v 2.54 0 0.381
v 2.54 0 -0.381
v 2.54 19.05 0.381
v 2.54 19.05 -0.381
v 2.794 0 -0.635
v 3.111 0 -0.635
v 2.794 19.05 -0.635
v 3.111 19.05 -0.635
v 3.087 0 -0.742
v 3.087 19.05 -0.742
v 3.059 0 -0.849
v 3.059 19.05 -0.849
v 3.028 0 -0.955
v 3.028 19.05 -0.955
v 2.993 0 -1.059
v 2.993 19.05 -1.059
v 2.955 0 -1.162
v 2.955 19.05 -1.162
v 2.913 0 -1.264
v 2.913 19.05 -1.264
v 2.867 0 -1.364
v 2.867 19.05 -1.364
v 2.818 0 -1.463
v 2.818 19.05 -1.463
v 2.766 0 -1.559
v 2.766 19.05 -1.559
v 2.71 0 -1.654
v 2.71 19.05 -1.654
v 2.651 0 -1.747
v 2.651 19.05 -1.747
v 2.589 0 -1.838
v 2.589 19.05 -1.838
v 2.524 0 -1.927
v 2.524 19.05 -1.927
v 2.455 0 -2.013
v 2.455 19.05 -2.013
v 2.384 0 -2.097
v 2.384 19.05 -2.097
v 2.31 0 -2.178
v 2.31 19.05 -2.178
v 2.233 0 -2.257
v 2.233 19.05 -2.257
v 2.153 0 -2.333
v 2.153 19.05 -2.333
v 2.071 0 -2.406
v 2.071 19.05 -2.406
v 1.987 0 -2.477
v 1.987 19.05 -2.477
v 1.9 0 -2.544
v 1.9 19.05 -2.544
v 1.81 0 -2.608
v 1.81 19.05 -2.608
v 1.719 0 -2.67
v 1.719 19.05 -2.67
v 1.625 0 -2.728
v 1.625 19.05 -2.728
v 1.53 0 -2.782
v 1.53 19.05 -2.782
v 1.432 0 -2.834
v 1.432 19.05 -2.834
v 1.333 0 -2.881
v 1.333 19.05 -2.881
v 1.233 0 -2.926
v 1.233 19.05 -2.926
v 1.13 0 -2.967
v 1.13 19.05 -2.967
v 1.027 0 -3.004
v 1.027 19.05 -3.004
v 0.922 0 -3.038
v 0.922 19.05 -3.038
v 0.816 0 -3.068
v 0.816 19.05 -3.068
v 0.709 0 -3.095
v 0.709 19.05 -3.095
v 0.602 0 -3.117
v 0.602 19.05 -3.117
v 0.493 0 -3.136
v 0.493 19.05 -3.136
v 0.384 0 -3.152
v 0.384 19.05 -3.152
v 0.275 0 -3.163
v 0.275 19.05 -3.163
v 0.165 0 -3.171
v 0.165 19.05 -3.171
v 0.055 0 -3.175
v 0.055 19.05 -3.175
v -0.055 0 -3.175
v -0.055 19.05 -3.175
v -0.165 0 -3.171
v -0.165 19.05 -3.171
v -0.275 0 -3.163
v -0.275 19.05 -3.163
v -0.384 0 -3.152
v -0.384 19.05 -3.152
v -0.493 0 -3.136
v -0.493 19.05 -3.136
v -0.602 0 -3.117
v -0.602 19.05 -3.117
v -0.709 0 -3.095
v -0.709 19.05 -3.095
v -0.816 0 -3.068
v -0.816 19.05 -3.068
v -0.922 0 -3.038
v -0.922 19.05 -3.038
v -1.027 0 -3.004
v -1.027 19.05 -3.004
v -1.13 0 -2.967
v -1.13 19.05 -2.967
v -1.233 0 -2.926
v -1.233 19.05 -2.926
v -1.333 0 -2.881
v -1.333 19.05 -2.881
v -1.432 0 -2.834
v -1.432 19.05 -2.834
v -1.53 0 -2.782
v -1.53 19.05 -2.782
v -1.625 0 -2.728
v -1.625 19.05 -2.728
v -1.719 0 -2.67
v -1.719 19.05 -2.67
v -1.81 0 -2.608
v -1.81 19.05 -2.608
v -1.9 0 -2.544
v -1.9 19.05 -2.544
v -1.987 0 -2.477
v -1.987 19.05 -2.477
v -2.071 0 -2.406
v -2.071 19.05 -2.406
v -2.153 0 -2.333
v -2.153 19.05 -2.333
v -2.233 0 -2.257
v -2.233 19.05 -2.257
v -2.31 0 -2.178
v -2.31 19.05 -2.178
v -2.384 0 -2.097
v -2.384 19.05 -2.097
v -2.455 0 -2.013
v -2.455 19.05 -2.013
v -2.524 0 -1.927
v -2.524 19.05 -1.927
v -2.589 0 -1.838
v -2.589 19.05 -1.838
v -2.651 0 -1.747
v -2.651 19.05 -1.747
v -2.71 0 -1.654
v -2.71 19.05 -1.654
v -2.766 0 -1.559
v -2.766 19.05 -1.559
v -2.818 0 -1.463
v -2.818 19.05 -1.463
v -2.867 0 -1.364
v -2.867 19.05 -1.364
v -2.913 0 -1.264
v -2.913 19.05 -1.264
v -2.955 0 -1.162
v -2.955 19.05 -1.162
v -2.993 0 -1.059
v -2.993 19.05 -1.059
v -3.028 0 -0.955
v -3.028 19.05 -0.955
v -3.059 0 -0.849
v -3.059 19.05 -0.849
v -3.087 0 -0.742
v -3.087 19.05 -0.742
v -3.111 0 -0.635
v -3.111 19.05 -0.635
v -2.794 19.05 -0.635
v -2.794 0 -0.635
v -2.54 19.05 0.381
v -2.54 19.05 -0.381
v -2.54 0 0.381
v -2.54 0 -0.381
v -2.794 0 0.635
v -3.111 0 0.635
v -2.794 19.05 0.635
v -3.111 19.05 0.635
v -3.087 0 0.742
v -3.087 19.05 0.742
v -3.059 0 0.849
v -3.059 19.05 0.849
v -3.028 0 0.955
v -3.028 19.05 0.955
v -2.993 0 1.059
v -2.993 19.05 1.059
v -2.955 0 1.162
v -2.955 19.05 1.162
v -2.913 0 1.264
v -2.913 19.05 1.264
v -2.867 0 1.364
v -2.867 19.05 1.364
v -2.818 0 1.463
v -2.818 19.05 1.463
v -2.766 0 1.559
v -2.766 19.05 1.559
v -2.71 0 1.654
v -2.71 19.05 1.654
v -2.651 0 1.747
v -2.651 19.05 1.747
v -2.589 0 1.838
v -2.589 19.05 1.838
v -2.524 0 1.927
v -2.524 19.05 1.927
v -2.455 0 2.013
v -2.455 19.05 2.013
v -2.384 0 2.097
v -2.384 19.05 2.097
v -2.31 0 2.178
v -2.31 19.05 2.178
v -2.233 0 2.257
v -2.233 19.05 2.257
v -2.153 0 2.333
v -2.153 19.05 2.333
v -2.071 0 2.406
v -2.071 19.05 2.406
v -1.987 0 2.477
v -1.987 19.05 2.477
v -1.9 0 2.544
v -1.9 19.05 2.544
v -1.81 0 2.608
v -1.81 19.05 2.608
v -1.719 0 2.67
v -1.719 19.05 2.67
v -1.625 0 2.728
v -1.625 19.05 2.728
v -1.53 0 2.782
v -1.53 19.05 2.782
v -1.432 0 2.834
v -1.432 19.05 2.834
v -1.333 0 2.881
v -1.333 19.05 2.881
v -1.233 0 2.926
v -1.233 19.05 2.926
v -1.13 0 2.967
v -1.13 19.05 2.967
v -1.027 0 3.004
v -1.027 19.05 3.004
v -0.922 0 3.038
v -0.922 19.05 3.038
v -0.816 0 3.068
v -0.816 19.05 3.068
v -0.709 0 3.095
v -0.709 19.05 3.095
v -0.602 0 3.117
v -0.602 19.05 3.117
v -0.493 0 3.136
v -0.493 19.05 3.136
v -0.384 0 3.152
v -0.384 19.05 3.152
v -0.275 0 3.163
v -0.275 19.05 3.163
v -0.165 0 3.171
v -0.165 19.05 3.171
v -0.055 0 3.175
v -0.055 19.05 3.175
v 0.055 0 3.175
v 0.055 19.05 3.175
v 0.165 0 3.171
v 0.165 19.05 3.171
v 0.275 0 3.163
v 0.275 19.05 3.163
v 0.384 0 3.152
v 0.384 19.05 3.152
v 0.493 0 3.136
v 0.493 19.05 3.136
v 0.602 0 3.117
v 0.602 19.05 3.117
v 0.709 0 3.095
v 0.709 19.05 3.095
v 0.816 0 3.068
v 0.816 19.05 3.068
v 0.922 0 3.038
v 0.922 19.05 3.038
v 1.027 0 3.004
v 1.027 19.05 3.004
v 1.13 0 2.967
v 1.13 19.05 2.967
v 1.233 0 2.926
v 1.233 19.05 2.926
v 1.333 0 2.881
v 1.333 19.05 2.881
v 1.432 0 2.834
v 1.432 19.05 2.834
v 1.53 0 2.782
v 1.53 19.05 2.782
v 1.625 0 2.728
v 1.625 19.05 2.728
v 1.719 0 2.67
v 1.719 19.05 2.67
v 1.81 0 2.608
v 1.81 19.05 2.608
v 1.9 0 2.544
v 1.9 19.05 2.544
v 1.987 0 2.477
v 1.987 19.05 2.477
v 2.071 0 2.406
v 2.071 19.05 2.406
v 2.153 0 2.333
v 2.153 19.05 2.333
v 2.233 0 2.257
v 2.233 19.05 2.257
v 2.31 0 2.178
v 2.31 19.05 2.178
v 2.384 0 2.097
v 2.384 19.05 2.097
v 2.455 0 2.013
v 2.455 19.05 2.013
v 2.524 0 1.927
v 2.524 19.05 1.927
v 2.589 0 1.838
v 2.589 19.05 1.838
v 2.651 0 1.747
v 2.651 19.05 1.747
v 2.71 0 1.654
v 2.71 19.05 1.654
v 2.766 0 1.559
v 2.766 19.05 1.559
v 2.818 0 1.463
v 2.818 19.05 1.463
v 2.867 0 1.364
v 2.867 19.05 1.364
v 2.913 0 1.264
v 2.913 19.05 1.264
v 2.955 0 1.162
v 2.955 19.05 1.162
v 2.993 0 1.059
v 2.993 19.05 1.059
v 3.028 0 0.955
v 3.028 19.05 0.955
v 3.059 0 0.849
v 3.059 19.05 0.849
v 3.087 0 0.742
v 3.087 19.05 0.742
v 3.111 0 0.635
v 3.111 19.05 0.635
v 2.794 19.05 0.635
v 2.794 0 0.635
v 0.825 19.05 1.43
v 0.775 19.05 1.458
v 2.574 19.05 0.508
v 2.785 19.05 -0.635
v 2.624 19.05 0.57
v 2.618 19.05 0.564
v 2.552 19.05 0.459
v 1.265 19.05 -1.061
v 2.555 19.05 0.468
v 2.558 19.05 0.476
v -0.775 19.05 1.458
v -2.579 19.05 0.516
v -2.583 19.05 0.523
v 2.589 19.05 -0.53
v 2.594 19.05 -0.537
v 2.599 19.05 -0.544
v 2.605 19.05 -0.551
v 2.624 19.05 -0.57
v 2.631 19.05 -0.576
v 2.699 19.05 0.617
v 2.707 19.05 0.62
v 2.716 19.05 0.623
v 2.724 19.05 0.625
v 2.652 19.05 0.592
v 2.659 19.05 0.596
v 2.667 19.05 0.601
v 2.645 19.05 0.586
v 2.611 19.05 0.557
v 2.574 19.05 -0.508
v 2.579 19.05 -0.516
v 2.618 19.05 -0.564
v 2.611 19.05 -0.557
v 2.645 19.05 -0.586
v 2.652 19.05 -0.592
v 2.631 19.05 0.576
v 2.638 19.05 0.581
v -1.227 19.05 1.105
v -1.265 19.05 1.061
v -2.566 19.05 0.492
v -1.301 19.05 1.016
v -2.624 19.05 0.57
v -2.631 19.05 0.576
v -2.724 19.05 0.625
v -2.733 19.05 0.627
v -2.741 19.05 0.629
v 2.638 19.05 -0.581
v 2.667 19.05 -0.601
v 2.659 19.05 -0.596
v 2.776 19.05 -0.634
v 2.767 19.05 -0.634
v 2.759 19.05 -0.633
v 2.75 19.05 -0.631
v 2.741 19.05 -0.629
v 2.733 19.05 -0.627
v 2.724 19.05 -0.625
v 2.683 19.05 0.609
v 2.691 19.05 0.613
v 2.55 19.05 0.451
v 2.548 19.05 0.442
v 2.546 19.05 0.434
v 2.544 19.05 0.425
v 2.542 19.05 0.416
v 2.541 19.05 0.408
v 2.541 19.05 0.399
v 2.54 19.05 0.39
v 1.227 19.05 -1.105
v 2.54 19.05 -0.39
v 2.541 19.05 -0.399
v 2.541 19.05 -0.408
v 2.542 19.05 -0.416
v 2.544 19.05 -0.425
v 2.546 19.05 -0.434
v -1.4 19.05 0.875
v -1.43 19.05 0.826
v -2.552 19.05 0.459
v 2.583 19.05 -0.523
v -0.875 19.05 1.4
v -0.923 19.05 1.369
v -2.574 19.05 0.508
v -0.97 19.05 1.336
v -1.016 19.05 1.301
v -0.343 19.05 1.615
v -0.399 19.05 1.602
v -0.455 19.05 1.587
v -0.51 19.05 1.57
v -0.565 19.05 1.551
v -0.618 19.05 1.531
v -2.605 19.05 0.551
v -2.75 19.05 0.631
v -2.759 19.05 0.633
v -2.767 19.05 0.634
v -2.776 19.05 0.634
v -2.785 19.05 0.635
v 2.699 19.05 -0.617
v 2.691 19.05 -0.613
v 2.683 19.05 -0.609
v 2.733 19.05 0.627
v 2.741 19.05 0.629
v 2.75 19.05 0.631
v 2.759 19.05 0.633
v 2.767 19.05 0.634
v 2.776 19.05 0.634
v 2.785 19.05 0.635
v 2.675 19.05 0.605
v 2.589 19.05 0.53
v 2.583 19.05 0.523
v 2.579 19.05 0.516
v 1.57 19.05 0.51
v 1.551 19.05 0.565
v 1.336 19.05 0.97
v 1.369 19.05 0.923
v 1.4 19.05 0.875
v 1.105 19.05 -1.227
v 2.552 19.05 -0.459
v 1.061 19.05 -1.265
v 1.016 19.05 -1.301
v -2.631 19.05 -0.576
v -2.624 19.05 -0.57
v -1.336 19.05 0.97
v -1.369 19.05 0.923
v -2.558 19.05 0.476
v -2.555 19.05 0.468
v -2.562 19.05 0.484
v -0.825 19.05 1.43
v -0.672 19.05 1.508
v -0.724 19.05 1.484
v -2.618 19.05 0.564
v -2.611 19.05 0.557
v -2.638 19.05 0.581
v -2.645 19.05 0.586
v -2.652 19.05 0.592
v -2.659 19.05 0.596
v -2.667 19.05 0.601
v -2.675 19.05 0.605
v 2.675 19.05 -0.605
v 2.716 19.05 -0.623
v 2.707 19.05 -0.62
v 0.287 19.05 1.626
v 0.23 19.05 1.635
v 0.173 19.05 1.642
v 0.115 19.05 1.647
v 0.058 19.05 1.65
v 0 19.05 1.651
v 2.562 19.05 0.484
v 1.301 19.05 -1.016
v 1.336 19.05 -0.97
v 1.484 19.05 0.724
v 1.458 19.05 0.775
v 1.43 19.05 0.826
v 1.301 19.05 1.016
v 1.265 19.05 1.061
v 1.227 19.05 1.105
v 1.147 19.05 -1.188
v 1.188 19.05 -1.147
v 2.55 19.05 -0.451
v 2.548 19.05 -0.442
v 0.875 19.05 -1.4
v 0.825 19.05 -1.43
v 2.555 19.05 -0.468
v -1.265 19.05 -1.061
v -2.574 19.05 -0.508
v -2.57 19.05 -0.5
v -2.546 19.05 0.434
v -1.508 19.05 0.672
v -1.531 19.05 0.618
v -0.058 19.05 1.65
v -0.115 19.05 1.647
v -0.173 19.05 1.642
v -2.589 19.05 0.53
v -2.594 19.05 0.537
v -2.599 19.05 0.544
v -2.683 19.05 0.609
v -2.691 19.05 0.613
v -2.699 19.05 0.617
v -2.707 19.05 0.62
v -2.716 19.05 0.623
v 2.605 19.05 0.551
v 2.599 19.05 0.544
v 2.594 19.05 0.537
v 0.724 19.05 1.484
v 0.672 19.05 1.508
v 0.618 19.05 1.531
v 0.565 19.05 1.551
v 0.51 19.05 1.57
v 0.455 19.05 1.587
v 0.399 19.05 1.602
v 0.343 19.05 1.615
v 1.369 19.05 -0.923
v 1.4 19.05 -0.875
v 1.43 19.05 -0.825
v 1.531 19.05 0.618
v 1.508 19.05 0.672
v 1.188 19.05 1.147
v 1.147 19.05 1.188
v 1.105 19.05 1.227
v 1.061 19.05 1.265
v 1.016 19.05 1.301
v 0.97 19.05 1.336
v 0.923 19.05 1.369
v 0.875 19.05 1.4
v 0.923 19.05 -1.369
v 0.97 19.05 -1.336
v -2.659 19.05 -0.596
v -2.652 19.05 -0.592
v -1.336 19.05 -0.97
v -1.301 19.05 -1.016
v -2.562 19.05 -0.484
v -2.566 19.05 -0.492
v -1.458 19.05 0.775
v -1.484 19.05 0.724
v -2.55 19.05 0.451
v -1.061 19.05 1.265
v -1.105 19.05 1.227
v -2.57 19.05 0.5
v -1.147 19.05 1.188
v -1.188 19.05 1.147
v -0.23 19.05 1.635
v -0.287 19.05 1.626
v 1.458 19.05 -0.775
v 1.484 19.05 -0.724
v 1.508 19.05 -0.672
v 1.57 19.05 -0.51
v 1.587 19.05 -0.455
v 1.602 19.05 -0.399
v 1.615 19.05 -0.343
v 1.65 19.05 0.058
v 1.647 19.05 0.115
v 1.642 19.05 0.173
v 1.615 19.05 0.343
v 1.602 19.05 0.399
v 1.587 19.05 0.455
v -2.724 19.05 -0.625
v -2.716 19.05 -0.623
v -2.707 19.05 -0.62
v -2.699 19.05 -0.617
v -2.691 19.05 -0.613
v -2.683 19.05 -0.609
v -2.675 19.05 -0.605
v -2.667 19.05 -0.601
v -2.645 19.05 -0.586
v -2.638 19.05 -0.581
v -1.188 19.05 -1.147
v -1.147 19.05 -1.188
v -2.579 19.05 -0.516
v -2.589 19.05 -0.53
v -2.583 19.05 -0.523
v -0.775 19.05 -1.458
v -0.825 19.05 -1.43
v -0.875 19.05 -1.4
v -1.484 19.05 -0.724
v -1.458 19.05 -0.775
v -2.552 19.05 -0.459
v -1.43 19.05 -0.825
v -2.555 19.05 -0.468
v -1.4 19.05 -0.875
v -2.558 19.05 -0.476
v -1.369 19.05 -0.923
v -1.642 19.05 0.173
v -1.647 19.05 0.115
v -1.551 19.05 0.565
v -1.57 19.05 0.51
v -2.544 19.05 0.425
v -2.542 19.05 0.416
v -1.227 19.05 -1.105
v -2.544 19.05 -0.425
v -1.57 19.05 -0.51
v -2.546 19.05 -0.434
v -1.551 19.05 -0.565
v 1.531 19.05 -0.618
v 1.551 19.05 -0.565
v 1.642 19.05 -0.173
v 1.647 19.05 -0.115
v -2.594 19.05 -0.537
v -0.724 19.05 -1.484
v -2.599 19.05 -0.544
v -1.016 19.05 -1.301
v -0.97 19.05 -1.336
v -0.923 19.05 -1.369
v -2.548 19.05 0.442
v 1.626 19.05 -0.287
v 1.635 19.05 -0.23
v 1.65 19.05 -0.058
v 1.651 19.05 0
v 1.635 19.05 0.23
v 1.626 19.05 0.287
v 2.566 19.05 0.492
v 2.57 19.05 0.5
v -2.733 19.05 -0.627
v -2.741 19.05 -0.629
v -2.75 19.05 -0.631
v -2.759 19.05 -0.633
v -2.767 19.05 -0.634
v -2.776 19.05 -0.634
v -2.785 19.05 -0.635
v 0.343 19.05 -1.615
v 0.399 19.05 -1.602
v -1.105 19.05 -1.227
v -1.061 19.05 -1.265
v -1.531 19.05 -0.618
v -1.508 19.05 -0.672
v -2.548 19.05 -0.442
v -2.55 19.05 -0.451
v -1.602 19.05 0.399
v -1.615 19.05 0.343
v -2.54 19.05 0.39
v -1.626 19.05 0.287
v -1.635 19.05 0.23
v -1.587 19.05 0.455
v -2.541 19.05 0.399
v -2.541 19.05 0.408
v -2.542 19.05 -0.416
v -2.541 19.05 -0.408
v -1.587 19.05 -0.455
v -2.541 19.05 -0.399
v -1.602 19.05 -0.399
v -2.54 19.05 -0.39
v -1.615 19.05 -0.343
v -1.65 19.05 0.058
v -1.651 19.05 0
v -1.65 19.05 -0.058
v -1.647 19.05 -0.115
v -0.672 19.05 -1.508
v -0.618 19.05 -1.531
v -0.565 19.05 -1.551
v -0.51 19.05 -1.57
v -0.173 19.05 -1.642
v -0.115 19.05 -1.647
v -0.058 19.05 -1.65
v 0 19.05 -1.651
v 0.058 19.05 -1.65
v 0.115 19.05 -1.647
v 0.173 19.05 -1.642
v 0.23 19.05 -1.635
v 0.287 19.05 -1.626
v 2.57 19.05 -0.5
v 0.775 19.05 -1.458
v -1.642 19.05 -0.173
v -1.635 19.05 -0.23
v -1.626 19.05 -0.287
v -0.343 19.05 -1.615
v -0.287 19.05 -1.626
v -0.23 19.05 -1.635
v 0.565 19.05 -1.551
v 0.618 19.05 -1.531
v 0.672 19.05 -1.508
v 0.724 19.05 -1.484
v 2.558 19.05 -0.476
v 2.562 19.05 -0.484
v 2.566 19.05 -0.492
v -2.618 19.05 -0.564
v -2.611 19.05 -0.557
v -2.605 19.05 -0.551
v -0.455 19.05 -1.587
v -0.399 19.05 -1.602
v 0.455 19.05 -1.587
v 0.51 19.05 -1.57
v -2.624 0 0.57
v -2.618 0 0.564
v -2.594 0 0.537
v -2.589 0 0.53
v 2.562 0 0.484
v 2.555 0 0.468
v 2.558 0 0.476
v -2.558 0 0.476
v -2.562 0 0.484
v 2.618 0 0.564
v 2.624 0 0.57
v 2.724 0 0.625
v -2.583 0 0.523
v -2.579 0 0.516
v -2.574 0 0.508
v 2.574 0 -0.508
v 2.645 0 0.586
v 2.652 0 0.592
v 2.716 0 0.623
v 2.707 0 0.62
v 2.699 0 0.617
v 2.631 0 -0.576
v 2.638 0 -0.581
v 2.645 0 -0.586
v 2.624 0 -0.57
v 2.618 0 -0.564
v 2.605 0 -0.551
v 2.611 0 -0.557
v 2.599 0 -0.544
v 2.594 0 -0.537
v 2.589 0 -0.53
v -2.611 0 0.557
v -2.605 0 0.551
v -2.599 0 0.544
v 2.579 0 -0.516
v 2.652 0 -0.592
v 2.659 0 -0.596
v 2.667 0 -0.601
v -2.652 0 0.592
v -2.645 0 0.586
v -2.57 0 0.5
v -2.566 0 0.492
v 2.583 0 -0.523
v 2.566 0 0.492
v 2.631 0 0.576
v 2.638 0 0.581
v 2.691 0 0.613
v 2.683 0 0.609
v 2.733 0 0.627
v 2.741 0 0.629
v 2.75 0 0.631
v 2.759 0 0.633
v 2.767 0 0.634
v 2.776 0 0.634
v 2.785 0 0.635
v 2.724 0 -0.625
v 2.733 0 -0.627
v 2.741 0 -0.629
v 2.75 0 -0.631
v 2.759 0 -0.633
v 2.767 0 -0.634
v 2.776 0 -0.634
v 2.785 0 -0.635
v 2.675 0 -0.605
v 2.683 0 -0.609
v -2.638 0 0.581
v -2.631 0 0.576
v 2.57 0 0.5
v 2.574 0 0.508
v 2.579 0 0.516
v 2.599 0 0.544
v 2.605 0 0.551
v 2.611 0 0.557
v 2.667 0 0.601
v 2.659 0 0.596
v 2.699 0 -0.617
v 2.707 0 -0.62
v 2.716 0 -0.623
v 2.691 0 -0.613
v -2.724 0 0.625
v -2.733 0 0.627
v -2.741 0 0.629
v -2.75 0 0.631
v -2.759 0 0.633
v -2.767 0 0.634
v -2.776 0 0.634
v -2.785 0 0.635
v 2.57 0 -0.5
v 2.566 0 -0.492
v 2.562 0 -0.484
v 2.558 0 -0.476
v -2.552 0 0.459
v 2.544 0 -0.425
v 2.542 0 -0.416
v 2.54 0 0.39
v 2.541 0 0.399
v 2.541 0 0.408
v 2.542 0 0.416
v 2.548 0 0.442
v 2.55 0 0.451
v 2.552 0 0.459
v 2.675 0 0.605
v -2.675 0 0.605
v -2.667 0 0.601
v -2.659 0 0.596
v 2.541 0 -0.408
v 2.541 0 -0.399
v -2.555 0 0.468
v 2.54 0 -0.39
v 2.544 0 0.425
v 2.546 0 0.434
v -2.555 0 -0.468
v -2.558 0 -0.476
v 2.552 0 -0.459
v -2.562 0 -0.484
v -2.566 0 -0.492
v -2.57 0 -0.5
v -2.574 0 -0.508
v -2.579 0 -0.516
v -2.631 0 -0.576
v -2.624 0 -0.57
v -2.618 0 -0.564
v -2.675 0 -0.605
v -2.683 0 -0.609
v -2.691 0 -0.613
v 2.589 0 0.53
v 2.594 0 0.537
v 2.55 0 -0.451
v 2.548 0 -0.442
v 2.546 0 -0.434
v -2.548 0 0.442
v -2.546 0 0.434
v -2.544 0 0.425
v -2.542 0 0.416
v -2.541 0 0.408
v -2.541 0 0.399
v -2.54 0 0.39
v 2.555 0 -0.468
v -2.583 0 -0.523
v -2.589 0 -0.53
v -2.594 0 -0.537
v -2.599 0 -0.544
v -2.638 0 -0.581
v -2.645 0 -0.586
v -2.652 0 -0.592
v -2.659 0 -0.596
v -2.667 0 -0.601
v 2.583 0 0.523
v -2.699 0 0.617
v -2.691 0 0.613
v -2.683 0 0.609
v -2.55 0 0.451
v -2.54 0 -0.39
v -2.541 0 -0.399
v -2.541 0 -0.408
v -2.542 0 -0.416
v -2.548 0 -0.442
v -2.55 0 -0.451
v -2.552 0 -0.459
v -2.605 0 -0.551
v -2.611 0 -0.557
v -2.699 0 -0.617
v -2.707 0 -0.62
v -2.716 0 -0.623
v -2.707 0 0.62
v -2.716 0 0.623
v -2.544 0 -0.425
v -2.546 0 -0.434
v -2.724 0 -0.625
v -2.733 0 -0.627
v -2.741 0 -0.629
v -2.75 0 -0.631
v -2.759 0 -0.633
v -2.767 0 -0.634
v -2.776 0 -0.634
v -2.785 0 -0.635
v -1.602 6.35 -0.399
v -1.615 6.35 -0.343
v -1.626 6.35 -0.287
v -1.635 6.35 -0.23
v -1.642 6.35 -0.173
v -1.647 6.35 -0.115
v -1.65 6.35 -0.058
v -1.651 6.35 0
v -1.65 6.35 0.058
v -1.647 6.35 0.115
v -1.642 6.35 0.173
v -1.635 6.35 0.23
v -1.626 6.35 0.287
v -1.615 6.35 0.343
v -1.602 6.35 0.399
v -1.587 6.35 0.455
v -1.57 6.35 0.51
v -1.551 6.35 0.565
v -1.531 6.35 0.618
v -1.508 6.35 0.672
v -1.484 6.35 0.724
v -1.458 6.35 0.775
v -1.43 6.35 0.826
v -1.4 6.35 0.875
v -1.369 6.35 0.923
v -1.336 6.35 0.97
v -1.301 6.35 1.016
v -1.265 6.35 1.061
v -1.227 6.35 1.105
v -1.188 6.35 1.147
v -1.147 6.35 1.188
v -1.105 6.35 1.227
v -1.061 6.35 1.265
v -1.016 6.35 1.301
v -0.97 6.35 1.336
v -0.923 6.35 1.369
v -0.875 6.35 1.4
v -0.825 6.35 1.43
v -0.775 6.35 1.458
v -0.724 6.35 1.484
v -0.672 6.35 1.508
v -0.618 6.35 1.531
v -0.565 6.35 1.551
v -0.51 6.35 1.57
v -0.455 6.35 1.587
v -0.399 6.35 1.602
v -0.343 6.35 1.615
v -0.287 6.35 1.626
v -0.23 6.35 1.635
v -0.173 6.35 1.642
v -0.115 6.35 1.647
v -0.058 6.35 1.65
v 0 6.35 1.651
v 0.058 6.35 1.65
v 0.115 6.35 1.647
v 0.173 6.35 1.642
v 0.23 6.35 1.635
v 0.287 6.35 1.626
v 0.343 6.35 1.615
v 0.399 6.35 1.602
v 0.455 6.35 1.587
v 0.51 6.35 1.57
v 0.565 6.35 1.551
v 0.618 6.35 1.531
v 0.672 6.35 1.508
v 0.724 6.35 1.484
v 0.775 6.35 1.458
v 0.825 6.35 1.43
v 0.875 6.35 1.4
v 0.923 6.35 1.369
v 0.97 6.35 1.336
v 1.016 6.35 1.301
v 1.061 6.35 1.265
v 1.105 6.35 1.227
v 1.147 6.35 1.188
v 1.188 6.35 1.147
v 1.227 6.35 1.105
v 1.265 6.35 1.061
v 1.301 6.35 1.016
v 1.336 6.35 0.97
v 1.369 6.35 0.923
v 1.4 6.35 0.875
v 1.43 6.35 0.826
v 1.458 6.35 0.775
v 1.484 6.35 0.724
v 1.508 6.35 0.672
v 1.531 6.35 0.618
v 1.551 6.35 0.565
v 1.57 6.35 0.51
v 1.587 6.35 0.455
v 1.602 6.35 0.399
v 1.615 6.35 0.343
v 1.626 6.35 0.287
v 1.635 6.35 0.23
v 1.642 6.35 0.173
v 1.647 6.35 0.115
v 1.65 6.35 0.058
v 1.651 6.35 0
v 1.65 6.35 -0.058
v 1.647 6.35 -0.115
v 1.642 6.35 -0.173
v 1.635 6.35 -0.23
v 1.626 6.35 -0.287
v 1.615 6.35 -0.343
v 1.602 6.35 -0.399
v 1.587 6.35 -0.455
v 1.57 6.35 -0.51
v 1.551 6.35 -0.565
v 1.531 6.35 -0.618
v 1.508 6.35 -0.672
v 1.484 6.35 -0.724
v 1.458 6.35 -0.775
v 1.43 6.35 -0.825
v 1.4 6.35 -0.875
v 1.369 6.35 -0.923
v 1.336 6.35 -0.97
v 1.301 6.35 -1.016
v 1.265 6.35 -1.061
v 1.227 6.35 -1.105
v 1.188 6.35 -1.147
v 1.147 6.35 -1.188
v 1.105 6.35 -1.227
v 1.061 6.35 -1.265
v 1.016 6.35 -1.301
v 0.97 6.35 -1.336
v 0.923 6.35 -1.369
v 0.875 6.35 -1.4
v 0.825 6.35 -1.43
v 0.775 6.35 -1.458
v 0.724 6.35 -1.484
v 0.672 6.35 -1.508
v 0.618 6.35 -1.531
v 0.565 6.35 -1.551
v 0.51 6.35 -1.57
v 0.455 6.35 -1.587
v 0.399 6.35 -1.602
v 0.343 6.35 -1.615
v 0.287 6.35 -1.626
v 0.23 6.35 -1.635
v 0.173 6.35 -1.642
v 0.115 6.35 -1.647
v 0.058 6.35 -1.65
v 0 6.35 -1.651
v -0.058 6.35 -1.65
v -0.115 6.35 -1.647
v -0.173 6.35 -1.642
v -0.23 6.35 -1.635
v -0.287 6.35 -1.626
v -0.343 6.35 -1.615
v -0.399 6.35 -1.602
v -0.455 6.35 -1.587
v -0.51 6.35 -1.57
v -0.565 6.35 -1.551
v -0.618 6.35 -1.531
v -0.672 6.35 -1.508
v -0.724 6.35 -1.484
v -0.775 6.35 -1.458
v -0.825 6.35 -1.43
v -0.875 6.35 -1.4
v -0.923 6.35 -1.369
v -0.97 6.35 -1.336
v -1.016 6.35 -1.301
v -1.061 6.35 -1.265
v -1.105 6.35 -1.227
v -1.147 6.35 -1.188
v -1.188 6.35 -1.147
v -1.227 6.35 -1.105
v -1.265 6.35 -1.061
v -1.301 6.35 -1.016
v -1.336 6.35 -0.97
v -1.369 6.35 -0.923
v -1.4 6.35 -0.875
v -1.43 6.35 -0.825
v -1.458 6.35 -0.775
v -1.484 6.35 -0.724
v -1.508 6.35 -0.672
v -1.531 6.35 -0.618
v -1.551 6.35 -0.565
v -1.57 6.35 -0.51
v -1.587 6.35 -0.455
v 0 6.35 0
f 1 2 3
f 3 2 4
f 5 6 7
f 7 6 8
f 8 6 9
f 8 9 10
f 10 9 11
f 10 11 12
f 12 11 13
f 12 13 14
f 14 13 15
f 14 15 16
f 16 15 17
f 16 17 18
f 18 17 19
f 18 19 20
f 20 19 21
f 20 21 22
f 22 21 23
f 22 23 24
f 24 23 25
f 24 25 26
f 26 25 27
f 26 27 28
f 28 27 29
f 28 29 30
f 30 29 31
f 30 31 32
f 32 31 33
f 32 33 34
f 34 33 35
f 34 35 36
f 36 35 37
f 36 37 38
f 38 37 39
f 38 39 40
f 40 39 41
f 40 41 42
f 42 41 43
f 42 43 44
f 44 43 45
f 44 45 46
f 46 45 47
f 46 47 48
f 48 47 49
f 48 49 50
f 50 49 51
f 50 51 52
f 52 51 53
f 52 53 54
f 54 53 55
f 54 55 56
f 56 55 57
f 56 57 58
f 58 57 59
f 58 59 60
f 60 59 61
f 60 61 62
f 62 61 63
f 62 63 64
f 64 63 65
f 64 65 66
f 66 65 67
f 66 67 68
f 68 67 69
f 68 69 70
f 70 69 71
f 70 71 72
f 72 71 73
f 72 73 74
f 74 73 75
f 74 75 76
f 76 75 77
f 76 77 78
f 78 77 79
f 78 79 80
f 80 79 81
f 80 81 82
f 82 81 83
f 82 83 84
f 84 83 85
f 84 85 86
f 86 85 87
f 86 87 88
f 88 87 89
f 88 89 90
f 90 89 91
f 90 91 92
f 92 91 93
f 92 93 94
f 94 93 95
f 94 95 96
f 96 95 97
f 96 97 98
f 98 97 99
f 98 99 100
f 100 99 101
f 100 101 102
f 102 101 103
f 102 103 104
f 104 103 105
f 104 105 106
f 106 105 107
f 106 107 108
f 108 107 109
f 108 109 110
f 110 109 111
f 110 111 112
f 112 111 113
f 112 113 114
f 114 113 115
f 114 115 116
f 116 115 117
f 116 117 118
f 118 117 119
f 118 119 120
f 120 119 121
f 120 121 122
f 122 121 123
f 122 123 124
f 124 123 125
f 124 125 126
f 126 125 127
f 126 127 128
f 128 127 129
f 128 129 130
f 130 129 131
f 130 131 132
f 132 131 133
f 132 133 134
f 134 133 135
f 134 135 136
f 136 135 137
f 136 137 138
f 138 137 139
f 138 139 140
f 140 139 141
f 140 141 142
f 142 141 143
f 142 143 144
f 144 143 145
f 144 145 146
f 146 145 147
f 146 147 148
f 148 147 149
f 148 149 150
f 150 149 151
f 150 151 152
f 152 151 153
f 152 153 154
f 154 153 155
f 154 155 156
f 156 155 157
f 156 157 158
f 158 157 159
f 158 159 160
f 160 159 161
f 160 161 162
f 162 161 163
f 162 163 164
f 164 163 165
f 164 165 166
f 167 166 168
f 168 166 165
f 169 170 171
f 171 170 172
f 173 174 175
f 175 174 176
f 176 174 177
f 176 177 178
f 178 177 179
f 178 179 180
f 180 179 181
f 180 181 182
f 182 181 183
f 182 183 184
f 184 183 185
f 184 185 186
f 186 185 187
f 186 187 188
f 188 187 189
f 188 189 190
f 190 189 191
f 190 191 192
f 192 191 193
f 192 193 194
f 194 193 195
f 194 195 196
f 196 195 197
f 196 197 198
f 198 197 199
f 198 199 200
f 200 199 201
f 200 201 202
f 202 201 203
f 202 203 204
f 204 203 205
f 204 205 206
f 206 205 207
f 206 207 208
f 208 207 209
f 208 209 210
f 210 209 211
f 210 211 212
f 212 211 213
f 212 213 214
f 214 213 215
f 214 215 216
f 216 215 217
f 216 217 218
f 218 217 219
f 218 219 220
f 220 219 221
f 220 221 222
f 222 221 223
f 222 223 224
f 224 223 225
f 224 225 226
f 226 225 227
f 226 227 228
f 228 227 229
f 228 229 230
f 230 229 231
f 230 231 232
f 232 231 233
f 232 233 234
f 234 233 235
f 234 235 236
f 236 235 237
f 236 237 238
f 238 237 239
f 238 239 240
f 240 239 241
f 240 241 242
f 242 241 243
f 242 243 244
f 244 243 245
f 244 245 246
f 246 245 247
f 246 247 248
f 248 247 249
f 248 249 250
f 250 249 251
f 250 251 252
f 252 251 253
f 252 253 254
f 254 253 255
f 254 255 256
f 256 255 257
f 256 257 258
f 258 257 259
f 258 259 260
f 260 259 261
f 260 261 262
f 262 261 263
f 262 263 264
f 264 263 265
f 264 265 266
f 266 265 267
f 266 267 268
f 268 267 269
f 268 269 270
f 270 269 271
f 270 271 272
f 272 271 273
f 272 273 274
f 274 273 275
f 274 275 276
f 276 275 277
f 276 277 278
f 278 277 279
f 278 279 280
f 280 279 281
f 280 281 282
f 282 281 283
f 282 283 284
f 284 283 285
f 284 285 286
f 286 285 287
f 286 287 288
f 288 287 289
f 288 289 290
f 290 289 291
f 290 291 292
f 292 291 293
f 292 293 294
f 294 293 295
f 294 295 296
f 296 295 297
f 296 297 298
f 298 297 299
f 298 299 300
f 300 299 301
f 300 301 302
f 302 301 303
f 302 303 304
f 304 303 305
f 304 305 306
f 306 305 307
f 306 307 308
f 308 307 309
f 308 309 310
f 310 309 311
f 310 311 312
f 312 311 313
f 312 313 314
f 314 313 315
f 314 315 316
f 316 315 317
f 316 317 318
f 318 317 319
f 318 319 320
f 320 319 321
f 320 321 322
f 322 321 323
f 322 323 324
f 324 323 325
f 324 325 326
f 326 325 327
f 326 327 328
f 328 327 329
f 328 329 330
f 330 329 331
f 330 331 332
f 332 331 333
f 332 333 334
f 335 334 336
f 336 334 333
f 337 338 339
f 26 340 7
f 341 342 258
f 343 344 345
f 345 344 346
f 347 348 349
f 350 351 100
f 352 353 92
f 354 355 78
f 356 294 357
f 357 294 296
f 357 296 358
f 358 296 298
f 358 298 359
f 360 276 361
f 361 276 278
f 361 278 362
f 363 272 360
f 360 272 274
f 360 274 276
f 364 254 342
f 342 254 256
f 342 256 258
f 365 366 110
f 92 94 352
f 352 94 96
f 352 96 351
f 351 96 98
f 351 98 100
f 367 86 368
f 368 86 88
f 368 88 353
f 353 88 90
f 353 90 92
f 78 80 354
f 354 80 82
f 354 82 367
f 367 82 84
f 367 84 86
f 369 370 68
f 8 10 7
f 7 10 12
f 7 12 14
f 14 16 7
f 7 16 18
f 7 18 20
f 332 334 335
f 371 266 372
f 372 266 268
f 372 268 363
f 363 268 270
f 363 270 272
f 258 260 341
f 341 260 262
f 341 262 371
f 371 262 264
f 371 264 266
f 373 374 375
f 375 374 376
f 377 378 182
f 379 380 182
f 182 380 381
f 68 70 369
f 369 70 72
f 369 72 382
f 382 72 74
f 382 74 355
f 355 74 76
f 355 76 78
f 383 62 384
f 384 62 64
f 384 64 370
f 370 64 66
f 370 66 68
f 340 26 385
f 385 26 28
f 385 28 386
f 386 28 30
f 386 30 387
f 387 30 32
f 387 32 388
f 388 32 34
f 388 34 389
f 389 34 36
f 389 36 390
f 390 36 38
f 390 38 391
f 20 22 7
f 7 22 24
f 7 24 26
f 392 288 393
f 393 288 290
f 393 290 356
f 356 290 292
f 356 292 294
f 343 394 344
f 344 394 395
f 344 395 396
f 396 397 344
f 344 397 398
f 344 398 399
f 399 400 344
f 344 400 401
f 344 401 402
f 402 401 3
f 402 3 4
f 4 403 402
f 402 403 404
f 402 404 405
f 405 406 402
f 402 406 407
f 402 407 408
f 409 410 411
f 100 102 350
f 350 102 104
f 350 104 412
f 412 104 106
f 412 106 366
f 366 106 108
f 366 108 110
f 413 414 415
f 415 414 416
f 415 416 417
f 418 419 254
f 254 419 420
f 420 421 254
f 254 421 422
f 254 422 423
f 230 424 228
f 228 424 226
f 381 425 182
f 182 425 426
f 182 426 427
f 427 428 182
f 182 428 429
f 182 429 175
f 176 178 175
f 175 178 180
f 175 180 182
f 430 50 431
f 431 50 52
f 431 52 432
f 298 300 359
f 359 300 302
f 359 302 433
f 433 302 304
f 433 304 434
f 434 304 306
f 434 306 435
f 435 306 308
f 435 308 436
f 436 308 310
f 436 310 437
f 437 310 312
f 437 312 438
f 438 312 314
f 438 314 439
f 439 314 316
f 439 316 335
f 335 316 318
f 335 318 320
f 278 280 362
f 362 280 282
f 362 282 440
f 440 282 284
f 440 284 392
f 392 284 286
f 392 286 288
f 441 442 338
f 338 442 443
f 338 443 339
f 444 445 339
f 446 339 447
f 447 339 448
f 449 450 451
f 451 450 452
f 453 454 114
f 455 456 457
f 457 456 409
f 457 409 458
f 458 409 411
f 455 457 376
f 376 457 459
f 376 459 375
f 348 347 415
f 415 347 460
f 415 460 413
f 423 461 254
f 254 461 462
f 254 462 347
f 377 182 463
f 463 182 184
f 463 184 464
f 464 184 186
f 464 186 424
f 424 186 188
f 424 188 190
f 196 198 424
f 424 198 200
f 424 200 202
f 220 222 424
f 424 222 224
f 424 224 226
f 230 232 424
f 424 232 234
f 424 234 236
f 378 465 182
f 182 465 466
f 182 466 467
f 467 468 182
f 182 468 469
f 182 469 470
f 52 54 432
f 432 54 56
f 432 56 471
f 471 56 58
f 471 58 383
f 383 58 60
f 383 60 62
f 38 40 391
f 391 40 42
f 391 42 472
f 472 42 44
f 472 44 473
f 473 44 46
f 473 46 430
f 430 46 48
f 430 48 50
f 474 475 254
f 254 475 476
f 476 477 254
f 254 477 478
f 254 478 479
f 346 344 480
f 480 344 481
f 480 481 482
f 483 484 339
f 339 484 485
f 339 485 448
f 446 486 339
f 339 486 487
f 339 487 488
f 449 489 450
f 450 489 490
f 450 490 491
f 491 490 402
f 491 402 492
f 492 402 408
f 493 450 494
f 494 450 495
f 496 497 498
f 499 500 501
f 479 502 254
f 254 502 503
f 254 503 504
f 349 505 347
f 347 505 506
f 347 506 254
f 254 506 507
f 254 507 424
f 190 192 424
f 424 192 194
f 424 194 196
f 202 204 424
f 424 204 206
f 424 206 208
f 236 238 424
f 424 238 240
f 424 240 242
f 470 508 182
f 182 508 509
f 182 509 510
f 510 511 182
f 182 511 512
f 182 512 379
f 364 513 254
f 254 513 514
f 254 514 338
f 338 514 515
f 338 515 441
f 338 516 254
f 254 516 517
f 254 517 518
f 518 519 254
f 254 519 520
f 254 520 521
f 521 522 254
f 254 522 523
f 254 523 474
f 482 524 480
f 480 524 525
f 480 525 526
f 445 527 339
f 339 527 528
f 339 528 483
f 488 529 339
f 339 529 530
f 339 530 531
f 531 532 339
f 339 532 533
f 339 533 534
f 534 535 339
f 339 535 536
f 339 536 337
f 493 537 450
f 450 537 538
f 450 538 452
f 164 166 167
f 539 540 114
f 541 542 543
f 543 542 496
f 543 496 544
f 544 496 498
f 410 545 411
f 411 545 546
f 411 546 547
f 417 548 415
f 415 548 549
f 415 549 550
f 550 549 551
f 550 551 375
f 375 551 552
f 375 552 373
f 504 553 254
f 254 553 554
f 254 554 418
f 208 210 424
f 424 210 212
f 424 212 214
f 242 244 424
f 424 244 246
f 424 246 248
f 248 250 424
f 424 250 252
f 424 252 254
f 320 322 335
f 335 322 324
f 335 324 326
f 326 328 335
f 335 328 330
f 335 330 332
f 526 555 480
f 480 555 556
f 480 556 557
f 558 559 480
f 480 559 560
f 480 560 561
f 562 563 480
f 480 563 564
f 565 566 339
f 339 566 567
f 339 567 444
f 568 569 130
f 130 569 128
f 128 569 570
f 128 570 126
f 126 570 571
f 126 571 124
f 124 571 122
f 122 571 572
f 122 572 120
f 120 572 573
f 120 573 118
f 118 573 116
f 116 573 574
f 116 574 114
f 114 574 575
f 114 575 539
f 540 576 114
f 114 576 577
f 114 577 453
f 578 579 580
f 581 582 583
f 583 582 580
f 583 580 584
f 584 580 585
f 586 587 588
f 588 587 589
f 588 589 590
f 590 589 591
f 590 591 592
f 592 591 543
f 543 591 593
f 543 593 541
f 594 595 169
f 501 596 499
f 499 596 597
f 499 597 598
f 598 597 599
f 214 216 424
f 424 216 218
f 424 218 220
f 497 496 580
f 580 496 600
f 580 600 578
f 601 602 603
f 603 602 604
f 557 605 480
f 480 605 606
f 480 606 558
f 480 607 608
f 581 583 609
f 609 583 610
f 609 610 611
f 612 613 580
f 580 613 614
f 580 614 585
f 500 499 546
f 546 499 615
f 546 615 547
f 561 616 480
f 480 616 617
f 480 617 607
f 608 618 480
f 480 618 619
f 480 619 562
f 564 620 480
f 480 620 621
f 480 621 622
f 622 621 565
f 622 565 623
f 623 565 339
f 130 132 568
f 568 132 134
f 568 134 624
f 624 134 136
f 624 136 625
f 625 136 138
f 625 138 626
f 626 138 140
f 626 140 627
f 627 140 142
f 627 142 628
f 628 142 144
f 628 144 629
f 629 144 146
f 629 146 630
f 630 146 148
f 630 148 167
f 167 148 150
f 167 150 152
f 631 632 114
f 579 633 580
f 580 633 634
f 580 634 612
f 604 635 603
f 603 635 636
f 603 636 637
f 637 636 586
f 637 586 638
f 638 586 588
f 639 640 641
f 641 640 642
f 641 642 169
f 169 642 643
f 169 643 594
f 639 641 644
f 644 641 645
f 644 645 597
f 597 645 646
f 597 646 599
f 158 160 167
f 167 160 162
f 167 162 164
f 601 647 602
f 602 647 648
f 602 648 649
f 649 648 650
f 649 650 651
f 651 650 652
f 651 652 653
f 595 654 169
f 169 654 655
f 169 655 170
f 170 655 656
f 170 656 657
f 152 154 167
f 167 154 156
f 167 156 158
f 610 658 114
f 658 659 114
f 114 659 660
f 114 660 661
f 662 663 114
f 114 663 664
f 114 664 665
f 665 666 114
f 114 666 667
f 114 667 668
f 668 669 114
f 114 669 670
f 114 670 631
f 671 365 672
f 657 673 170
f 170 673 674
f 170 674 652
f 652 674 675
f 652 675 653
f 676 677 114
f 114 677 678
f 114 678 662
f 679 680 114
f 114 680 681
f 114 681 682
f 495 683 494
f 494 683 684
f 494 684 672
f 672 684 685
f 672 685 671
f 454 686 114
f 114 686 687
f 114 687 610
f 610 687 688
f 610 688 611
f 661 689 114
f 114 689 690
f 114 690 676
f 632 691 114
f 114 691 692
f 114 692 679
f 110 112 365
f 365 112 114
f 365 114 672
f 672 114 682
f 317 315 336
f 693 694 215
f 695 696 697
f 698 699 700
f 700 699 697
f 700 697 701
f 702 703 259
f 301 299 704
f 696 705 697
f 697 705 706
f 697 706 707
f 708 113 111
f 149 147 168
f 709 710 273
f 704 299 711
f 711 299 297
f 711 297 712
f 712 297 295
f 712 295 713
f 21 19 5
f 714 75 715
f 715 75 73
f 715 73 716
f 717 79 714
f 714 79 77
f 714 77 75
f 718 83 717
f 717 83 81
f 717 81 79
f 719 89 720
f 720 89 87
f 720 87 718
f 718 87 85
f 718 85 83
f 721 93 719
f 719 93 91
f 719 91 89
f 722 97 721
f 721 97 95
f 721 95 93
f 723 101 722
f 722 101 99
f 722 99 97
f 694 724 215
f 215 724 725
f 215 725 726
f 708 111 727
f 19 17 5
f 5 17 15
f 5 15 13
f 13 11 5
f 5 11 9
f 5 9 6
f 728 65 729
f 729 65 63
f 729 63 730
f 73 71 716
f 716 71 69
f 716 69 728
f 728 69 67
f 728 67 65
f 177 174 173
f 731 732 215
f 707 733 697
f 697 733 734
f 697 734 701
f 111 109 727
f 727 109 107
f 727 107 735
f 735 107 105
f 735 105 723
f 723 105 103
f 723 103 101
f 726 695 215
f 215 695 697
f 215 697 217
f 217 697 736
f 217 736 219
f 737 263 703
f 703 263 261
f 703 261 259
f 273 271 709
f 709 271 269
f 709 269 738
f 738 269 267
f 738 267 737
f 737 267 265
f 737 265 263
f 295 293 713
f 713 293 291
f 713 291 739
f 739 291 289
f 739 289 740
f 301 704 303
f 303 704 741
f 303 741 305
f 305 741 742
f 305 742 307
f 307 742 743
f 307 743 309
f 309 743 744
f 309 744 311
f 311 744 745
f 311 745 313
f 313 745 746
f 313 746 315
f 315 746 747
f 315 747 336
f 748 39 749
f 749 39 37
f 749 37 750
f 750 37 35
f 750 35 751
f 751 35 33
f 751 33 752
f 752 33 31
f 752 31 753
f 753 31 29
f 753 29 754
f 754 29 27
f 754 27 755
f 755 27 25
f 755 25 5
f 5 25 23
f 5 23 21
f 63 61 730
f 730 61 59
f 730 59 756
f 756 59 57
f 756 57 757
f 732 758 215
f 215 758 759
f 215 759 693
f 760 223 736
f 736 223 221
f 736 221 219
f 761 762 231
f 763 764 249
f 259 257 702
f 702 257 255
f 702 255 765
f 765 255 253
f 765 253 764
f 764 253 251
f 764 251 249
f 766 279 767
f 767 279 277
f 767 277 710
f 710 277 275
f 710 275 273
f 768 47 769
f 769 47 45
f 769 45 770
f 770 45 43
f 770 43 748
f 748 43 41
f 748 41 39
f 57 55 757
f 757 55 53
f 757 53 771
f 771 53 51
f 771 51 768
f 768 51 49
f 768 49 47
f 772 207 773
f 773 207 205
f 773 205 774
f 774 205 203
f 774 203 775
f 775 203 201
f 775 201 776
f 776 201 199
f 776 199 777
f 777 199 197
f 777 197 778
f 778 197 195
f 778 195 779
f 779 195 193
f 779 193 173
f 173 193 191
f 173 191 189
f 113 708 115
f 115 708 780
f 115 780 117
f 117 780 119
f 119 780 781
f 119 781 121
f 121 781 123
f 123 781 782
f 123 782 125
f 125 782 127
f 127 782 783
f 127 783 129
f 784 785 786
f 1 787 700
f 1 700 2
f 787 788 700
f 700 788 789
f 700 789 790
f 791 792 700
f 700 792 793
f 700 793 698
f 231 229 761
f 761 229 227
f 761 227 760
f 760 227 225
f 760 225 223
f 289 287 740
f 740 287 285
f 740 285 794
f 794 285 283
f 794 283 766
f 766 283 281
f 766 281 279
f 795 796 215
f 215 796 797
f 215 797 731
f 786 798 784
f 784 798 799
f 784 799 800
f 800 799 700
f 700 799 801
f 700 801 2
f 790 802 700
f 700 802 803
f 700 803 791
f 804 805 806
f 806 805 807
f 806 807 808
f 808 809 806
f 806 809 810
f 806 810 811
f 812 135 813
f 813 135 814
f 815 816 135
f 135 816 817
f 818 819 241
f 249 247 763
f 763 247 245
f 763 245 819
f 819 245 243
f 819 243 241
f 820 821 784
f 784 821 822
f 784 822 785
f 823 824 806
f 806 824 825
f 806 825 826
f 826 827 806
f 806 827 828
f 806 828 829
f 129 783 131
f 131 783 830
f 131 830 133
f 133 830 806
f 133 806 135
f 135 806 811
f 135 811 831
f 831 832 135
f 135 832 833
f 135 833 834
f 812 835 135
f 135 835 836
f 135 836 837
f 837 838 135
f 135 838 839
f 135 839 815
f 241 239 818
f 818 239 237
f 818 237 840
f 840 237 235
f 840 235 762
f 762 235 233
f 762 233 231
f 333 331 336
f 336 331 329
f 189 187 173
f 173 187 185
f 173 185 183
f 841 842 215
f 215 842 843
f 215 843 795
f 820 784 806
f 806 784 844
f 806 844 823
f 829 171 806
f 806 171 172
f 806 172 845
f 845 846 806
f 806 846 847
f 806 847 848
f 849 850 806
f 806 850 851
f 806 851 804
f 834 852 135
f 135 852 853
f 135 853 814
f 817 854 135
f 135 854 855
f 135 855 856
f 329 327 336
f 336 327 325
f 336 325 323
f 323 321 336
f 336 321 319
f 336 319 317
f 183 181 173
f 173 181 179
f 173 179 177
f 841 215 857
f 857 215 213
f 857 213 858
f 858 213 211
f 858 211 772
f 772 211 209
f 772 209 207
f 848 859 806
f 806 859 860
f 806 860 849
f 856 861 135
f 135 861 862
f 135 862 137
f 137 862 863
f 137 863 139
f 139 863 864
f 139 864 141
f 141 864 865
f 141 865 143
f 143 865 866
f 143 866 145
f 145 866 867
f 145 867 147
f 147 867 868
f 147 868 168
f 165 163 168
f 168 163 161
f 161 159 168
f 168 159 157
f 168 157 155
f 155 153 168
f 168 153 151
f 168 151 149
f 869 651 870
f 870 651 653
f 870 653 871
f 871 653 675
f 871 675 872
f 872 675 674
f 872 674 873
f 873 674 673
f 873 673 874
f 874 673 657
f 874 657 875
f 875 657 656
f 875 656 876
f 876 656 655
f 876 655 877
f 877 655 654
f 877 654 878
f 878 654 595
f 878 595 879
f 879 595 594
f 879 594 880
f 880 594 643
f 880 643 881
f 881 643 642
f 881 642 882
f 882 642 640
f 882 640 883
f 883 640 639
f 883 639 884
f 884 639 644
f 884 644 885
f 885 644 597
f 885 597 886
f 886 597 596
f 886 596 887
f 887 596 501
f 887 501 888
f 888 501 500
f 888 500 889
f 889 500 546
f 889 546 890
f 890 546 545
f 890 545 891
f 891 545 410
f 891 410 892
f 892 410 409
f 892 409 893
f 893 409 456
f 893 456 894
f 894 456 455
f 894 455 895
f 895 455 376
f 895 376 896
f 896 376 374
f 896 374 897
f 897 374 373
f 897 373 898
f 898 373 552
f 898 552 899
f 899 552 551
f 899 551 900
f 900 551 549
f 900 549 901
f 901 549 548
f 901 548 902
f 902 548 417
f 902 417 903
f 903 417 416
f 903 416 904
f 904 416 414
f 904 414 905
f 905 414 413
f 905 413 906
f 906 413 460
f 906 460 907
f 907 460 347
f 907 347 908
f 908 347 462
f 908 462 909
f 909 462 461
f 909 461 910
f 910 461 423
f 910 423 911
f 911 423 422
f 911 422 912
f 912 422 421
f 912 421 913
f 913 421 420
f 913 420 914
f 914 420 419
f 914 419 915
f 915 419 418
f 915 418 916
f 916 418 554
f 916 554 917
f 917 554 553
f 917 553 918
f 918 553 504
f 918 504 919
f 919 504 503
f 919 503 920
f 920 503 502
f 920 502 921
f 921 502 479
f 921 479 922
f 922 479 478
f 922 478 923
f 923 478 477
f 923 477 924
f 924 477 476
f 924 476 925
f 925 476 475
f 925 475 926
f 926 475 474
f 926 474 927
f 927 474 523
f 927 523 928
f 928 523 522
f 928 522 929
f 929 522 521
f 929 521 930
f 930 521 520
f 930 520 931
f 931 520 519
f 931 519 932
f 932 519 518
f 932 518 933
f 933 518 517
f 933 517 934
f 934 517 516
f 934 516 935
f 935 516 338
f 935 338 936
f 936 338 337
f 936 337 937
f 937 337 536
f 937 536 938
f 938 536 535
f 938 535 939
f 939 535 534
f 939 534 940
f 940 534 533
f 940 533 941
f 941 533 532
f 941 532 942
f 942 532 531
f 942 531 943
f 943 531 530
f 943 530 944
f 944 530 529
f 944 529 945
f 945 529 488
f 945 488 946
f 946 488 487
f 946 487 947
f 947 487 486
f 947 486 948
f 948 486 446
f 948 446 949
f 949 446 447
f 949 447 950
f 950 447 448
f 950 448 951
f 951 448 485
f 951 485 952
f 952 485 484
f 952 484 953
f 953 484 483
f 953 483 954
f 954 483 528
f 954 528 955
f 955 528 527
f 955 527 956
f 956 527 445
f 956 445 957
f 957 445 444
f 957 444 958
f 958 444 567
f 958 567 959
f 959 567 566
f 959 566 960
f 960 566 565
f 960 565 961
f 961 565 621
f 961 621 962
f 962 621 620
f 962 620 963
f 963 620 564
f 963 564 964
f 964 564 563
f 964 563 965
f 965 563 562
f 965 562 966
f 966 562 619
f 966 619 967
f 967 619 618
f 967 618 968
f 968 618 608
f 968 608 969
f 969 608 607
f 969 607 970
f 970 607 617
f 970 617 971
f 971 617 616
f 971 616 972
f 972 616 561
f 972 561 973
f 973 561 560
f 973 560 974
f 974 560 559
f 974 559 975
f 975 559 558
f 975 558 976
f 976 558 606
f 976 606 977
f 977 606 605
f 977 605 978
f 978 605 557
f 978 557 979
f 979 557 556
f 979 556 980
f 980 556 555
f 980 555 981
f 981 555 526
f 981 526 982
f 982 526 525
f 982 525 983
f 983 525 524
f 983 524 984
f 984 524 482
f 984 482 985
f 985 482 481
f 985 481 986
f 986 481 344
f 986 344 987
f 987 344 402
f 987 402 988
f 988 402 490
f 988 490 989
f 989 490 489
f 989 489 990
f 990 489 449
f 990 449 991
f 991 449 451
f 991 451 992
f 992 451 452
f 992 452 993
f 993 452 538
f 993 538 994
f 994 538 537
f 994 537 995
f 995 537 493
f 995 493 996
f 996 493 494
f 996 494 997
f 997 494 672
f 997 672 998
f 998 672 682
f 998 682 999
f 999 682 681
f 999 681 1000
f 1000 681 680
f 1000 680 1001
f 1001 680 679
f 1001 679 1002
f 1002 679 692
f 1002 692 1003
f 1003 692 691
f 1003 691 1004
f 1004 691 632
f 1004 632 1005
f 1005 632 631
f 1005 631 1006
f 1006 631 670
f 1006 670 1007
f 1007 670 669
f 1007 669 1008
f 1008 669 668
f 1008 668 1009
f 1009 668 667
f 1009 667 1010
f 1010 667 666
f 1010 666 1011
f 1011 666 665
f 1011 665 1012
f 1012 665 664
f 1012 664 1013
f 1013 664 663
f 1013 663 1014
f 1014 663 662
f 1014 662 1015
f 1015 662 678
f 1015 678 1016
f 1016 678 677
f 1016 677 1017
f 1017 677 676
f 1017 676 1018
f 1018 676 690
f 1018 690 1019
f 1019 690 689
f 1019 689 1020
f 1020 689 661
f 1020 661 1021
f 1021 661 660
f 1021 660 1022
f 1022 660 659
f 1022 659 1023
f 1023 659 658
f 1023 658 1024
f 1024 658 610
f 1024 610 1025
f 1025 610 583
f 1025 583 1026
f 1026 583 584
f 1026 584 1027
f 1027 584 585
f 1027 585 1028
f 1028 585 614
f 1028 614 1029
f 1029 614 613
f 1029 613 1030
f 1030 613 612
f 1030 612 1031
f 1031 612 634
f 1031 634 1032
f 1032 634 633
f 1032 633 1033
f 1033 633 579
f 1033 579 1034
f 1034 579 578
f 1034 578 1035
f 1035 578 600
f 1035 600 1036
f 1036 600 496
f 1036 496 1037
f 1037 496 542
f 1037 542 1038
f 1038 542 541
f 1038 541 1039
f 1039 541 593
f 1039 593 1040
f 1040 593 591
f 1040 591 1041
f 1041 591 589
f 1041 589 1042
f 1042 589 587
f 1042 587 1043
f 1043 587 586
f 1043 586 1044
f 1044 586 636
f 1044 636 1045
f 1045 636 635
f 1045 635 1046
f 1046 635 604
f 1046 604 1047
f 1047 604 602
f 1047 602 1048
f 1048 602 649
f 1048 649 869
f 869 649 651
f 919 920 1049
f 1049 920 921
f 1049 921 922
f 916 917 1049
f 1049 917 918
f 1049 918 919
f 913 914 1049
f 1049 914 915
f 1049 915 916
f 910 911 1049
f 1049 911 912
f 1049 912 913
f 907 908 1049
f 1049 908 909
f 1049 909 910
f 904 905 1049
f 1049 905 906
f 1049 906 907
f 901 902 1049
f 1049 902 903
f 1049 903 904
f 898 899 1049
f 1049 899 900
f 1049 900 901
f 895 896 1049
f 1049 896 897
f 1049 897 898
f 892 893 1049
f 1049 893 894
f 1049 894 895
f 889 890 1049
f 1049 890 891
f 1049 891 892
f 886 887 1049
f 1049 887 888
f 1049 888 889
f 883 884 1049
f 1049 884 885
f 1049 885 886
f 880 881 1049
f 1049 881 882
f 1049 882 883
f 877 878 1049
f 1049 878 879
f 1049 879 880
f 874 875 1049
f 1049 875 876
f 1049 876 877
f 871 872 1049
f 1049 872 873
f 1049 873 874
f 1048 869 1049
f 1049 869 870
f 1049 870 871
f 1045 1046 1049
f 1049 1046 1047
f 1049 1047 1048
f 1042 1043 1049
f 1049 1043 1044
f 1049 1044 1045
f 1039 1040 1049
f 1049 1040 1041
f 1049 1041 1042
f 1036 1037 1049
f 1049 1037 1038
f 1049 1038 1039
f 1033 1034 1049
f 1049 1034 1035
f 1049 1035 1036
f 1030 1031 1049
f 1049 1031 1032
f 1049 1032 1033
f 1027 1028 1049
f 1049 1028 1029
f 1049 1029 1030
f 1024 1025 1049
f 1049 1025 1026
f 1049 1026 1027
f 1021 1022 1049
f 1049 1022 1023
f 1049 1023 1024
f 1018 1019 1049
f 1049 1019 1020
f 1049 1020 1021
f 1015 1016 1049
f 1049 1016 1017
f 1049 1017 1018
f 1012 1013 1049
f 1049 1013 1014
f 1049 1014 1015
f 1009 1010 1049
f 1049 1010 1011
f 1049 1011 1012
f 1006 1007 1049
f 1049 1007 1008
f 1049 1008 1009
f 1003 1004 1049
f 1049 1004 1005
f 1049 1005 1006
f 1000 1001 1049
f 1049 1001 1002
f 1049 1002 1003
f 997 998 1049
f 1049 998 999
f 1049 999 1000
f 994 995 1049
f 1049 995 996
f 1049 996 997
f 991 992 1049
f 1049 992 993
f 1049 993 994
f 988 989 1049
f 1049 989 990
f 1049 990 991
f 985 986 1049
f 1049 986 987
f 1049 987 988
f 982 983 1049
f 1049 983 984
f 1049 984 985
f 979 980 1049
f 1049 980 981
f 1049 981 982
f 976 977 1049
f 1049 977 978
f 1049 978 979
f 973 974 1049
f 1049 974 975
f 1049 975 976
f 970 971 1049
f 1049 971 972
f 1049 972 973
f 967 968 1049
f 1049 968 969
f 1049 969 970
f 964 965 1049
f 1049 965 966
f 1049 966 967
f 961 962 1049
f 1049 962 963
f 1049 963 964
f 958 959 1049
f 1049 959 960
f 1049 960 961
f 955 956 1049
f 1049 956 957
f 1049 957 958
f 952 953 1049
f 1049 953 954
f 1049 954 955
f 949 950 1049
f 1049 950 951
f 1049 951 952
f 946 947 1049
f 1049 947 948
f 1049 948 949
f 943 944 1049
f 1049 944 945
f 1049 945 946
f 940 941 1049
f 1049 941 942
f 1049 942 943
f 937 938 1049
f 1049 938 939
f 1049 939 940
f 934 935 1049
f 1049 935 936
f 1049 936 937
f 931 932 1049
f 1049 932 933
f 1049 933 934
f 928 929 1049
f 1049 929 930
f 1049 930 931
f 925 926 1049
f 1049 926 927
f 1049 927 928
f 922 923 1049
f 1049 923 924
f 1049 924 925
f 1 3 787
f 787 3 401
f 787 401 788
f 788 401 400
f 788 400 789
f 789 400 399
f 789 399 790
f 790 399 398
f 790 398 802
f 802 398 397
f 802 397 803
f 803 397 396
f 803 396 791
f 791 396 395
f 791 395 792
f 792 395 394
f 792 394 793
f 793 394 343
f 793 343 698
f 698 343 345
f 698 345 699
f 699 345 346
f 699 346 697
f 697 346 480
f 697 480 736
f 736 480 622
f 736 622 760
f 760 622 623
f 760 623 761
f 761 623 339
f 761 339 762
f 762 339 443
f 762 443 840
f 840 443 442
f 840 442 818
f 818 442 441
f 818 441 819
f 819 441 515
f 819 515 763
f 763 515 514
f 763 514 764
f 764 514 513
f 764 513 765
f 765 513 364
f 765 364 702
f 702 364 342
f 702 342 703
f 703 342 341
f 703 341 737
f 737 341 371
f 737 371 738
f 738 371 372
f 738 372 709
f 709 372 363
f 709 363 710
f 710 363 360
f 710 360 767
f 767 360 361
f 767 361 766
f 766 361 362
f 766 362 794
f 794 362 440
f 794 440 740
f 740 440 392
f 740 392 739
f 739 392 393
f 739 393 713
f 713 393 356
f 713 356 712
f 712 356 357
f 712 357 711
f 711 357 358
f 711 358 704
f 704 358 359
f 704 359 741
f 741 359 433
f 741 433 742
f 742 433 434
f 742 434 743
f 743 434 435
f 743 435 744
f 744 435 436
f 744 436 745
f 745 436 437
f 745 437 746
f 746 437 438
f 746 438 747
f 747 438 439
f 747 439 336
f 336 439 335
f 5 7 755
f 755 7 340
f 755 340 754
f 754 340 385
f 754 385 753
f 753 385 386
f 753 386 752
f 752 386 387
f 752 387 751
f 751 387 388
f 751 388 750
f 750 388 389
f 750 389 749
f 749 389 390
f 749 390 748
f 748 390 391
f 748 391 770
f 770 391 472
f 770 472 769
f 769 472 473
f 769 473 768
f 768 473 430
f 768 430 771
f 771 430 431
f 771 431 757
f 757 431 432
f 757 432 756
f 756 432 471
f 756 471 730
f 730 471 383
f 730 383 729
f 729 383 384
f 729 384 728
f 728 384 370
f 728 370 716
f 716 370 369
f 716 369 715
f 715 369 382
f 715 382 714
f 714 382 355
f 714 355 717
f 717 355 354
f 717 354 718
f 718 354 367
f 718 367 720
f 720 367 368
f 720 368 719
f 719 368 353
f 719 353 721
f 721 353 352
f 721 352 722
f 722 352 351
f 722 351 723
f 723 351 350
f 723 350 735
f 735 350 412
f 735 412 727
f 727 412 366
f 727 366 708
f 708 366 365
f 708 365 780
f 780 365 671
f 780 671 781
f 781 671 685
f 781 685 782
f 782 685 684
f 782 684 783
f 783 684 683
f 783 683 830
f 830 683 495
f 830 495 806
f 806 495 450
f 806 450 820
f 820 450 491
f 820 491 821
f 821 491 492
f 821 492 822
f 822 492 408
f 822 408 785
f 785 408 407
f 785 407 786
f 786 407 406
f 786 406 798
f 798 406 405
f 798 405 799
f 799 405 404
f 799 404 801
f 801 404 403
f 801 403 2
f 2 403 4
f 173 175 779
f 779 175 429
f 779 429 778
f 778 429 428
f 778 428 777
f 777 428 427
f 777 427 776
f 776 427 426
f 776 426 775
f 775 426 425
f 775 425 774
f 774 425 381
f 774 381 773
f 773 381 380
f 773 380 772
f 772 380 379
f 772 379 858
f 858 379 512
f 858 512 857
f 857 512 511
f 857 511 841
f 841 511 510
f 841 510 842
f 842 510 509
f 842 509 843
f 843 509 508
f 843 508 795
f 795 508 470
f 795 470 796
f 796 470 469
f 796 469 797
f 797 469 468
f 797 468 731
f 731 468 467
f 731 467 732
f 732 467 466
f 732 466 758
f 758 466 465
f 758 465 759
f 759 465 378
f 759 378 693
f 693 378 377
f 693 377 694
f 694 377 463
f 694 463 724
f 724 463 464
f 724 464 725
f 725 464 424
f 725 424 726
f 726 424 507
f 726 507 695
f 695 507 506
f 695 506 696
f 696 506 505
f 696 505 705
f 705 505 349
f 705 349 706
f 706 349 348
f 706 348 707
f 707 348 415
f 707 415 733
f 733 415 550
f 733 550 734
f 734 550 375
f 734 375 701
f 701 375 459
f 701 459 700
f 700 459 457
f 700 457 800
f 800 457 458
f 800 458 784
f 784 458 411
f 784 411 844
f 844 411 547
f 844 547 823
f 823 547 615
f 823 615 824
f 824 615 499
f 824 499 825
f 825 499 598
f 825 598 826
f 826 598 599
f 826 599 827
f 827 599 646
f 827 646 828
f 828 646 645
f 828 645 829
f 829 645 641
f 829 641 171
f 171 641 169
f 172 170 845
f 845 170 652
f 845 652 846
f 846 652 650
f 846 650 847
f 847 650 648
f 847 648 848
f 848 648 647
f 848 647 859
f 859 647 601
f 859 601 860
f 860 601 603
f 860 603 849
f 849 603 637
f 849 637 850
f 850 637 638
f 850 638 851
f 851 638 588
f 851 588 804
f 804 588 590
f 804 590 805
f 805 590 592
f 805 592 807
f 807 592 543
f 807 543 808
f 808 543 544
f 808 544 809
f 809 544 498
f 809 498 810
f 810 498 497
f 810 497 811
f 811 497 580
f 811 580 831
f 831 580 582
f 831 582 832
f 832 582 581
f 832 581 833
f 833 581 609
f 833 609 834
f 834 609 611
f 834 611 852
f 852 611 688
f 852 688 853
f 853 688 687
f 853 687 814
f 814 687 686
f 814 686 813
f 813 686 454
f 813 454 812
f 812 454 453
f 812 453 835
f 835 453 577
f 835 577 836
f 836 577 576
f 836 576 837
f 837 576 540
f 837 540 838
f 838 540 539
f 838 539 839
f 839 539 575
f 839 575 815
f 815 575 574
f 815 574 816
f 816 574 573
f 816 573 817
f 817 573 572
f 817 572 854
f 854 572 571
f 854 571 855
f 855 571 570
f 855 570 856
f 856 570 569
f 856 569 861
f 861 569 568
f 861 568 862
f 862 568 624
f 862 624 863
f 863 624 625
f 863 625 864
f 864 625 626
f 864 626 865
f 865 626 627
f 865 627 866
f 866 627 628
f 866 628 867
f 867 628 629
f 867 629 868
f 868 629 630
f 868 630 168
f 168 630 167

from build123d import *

# Parameters (mm, degrees)
BOSS_EXTRUDE1_DEPTH = 19.05
SKETCH2_R           = 1.651
CUT_EXTRUDE1_DEPTH  = 12.7
FILLET1_R           = 0.254


with BuildPart() as part:
    # Sketch1 → Boss-Extrude1 (new body)
    with BuildSketch(Plane(origin=(0, 0, 0), x_dir=(1, 0, 0), z_dir=(0, 1, 0))):
        with BuildLine():
            Line((2.54, -0.635), (3.110851973, -0.635))
            ThreePointArc((3.110851973, -0.635), (0, -3.175), (-3.110851973, -0.635))
            Line((-3.110851973, -0.635), (-2.54, -0.635))
            Line((-2.54, -0.635), (-2.54, 0.635))
            Line((-2.54, 0.635), (-3.110851973, 0.635))
            ThreePointArc((-3.110851973, 0.635), (0, 3.175), (3.110851973, 0.635))
            Line((3.110851973, 0.635), (2.54, 0.635))
            Line((2.54, 0.635), (2.54, -0.635))
        make_face()
    extrude(amount=BOSS_EXTRUDE1_DEPTH)

    # Sketch2 → Cut-Extrude1 (cut)
    with BuildSketch(Plane(origin=(0, 19.05, 0), x_dir=(1, 0, 0), z_dir=(0, 1, 0))):
        Circle(SKETCH2_R)
    extrude(amount=-CUT_EXTRUDE1_DEPTH, mode=Mode.SUBTRACT)

    # Fillet1
    fillet1_edges = [part.edges().sort_by_distance(p)[0] for p in [
        (2.54, 9.525, 0.635),
        (-2.54, 9.525, 0.635),
        (-2.54, 9.525, -0.635),
        (2.54, 9.525, -0.635),
    ]]
    fillet(fillet1_edges, radius=FILLET1_R)


solid = part.part
